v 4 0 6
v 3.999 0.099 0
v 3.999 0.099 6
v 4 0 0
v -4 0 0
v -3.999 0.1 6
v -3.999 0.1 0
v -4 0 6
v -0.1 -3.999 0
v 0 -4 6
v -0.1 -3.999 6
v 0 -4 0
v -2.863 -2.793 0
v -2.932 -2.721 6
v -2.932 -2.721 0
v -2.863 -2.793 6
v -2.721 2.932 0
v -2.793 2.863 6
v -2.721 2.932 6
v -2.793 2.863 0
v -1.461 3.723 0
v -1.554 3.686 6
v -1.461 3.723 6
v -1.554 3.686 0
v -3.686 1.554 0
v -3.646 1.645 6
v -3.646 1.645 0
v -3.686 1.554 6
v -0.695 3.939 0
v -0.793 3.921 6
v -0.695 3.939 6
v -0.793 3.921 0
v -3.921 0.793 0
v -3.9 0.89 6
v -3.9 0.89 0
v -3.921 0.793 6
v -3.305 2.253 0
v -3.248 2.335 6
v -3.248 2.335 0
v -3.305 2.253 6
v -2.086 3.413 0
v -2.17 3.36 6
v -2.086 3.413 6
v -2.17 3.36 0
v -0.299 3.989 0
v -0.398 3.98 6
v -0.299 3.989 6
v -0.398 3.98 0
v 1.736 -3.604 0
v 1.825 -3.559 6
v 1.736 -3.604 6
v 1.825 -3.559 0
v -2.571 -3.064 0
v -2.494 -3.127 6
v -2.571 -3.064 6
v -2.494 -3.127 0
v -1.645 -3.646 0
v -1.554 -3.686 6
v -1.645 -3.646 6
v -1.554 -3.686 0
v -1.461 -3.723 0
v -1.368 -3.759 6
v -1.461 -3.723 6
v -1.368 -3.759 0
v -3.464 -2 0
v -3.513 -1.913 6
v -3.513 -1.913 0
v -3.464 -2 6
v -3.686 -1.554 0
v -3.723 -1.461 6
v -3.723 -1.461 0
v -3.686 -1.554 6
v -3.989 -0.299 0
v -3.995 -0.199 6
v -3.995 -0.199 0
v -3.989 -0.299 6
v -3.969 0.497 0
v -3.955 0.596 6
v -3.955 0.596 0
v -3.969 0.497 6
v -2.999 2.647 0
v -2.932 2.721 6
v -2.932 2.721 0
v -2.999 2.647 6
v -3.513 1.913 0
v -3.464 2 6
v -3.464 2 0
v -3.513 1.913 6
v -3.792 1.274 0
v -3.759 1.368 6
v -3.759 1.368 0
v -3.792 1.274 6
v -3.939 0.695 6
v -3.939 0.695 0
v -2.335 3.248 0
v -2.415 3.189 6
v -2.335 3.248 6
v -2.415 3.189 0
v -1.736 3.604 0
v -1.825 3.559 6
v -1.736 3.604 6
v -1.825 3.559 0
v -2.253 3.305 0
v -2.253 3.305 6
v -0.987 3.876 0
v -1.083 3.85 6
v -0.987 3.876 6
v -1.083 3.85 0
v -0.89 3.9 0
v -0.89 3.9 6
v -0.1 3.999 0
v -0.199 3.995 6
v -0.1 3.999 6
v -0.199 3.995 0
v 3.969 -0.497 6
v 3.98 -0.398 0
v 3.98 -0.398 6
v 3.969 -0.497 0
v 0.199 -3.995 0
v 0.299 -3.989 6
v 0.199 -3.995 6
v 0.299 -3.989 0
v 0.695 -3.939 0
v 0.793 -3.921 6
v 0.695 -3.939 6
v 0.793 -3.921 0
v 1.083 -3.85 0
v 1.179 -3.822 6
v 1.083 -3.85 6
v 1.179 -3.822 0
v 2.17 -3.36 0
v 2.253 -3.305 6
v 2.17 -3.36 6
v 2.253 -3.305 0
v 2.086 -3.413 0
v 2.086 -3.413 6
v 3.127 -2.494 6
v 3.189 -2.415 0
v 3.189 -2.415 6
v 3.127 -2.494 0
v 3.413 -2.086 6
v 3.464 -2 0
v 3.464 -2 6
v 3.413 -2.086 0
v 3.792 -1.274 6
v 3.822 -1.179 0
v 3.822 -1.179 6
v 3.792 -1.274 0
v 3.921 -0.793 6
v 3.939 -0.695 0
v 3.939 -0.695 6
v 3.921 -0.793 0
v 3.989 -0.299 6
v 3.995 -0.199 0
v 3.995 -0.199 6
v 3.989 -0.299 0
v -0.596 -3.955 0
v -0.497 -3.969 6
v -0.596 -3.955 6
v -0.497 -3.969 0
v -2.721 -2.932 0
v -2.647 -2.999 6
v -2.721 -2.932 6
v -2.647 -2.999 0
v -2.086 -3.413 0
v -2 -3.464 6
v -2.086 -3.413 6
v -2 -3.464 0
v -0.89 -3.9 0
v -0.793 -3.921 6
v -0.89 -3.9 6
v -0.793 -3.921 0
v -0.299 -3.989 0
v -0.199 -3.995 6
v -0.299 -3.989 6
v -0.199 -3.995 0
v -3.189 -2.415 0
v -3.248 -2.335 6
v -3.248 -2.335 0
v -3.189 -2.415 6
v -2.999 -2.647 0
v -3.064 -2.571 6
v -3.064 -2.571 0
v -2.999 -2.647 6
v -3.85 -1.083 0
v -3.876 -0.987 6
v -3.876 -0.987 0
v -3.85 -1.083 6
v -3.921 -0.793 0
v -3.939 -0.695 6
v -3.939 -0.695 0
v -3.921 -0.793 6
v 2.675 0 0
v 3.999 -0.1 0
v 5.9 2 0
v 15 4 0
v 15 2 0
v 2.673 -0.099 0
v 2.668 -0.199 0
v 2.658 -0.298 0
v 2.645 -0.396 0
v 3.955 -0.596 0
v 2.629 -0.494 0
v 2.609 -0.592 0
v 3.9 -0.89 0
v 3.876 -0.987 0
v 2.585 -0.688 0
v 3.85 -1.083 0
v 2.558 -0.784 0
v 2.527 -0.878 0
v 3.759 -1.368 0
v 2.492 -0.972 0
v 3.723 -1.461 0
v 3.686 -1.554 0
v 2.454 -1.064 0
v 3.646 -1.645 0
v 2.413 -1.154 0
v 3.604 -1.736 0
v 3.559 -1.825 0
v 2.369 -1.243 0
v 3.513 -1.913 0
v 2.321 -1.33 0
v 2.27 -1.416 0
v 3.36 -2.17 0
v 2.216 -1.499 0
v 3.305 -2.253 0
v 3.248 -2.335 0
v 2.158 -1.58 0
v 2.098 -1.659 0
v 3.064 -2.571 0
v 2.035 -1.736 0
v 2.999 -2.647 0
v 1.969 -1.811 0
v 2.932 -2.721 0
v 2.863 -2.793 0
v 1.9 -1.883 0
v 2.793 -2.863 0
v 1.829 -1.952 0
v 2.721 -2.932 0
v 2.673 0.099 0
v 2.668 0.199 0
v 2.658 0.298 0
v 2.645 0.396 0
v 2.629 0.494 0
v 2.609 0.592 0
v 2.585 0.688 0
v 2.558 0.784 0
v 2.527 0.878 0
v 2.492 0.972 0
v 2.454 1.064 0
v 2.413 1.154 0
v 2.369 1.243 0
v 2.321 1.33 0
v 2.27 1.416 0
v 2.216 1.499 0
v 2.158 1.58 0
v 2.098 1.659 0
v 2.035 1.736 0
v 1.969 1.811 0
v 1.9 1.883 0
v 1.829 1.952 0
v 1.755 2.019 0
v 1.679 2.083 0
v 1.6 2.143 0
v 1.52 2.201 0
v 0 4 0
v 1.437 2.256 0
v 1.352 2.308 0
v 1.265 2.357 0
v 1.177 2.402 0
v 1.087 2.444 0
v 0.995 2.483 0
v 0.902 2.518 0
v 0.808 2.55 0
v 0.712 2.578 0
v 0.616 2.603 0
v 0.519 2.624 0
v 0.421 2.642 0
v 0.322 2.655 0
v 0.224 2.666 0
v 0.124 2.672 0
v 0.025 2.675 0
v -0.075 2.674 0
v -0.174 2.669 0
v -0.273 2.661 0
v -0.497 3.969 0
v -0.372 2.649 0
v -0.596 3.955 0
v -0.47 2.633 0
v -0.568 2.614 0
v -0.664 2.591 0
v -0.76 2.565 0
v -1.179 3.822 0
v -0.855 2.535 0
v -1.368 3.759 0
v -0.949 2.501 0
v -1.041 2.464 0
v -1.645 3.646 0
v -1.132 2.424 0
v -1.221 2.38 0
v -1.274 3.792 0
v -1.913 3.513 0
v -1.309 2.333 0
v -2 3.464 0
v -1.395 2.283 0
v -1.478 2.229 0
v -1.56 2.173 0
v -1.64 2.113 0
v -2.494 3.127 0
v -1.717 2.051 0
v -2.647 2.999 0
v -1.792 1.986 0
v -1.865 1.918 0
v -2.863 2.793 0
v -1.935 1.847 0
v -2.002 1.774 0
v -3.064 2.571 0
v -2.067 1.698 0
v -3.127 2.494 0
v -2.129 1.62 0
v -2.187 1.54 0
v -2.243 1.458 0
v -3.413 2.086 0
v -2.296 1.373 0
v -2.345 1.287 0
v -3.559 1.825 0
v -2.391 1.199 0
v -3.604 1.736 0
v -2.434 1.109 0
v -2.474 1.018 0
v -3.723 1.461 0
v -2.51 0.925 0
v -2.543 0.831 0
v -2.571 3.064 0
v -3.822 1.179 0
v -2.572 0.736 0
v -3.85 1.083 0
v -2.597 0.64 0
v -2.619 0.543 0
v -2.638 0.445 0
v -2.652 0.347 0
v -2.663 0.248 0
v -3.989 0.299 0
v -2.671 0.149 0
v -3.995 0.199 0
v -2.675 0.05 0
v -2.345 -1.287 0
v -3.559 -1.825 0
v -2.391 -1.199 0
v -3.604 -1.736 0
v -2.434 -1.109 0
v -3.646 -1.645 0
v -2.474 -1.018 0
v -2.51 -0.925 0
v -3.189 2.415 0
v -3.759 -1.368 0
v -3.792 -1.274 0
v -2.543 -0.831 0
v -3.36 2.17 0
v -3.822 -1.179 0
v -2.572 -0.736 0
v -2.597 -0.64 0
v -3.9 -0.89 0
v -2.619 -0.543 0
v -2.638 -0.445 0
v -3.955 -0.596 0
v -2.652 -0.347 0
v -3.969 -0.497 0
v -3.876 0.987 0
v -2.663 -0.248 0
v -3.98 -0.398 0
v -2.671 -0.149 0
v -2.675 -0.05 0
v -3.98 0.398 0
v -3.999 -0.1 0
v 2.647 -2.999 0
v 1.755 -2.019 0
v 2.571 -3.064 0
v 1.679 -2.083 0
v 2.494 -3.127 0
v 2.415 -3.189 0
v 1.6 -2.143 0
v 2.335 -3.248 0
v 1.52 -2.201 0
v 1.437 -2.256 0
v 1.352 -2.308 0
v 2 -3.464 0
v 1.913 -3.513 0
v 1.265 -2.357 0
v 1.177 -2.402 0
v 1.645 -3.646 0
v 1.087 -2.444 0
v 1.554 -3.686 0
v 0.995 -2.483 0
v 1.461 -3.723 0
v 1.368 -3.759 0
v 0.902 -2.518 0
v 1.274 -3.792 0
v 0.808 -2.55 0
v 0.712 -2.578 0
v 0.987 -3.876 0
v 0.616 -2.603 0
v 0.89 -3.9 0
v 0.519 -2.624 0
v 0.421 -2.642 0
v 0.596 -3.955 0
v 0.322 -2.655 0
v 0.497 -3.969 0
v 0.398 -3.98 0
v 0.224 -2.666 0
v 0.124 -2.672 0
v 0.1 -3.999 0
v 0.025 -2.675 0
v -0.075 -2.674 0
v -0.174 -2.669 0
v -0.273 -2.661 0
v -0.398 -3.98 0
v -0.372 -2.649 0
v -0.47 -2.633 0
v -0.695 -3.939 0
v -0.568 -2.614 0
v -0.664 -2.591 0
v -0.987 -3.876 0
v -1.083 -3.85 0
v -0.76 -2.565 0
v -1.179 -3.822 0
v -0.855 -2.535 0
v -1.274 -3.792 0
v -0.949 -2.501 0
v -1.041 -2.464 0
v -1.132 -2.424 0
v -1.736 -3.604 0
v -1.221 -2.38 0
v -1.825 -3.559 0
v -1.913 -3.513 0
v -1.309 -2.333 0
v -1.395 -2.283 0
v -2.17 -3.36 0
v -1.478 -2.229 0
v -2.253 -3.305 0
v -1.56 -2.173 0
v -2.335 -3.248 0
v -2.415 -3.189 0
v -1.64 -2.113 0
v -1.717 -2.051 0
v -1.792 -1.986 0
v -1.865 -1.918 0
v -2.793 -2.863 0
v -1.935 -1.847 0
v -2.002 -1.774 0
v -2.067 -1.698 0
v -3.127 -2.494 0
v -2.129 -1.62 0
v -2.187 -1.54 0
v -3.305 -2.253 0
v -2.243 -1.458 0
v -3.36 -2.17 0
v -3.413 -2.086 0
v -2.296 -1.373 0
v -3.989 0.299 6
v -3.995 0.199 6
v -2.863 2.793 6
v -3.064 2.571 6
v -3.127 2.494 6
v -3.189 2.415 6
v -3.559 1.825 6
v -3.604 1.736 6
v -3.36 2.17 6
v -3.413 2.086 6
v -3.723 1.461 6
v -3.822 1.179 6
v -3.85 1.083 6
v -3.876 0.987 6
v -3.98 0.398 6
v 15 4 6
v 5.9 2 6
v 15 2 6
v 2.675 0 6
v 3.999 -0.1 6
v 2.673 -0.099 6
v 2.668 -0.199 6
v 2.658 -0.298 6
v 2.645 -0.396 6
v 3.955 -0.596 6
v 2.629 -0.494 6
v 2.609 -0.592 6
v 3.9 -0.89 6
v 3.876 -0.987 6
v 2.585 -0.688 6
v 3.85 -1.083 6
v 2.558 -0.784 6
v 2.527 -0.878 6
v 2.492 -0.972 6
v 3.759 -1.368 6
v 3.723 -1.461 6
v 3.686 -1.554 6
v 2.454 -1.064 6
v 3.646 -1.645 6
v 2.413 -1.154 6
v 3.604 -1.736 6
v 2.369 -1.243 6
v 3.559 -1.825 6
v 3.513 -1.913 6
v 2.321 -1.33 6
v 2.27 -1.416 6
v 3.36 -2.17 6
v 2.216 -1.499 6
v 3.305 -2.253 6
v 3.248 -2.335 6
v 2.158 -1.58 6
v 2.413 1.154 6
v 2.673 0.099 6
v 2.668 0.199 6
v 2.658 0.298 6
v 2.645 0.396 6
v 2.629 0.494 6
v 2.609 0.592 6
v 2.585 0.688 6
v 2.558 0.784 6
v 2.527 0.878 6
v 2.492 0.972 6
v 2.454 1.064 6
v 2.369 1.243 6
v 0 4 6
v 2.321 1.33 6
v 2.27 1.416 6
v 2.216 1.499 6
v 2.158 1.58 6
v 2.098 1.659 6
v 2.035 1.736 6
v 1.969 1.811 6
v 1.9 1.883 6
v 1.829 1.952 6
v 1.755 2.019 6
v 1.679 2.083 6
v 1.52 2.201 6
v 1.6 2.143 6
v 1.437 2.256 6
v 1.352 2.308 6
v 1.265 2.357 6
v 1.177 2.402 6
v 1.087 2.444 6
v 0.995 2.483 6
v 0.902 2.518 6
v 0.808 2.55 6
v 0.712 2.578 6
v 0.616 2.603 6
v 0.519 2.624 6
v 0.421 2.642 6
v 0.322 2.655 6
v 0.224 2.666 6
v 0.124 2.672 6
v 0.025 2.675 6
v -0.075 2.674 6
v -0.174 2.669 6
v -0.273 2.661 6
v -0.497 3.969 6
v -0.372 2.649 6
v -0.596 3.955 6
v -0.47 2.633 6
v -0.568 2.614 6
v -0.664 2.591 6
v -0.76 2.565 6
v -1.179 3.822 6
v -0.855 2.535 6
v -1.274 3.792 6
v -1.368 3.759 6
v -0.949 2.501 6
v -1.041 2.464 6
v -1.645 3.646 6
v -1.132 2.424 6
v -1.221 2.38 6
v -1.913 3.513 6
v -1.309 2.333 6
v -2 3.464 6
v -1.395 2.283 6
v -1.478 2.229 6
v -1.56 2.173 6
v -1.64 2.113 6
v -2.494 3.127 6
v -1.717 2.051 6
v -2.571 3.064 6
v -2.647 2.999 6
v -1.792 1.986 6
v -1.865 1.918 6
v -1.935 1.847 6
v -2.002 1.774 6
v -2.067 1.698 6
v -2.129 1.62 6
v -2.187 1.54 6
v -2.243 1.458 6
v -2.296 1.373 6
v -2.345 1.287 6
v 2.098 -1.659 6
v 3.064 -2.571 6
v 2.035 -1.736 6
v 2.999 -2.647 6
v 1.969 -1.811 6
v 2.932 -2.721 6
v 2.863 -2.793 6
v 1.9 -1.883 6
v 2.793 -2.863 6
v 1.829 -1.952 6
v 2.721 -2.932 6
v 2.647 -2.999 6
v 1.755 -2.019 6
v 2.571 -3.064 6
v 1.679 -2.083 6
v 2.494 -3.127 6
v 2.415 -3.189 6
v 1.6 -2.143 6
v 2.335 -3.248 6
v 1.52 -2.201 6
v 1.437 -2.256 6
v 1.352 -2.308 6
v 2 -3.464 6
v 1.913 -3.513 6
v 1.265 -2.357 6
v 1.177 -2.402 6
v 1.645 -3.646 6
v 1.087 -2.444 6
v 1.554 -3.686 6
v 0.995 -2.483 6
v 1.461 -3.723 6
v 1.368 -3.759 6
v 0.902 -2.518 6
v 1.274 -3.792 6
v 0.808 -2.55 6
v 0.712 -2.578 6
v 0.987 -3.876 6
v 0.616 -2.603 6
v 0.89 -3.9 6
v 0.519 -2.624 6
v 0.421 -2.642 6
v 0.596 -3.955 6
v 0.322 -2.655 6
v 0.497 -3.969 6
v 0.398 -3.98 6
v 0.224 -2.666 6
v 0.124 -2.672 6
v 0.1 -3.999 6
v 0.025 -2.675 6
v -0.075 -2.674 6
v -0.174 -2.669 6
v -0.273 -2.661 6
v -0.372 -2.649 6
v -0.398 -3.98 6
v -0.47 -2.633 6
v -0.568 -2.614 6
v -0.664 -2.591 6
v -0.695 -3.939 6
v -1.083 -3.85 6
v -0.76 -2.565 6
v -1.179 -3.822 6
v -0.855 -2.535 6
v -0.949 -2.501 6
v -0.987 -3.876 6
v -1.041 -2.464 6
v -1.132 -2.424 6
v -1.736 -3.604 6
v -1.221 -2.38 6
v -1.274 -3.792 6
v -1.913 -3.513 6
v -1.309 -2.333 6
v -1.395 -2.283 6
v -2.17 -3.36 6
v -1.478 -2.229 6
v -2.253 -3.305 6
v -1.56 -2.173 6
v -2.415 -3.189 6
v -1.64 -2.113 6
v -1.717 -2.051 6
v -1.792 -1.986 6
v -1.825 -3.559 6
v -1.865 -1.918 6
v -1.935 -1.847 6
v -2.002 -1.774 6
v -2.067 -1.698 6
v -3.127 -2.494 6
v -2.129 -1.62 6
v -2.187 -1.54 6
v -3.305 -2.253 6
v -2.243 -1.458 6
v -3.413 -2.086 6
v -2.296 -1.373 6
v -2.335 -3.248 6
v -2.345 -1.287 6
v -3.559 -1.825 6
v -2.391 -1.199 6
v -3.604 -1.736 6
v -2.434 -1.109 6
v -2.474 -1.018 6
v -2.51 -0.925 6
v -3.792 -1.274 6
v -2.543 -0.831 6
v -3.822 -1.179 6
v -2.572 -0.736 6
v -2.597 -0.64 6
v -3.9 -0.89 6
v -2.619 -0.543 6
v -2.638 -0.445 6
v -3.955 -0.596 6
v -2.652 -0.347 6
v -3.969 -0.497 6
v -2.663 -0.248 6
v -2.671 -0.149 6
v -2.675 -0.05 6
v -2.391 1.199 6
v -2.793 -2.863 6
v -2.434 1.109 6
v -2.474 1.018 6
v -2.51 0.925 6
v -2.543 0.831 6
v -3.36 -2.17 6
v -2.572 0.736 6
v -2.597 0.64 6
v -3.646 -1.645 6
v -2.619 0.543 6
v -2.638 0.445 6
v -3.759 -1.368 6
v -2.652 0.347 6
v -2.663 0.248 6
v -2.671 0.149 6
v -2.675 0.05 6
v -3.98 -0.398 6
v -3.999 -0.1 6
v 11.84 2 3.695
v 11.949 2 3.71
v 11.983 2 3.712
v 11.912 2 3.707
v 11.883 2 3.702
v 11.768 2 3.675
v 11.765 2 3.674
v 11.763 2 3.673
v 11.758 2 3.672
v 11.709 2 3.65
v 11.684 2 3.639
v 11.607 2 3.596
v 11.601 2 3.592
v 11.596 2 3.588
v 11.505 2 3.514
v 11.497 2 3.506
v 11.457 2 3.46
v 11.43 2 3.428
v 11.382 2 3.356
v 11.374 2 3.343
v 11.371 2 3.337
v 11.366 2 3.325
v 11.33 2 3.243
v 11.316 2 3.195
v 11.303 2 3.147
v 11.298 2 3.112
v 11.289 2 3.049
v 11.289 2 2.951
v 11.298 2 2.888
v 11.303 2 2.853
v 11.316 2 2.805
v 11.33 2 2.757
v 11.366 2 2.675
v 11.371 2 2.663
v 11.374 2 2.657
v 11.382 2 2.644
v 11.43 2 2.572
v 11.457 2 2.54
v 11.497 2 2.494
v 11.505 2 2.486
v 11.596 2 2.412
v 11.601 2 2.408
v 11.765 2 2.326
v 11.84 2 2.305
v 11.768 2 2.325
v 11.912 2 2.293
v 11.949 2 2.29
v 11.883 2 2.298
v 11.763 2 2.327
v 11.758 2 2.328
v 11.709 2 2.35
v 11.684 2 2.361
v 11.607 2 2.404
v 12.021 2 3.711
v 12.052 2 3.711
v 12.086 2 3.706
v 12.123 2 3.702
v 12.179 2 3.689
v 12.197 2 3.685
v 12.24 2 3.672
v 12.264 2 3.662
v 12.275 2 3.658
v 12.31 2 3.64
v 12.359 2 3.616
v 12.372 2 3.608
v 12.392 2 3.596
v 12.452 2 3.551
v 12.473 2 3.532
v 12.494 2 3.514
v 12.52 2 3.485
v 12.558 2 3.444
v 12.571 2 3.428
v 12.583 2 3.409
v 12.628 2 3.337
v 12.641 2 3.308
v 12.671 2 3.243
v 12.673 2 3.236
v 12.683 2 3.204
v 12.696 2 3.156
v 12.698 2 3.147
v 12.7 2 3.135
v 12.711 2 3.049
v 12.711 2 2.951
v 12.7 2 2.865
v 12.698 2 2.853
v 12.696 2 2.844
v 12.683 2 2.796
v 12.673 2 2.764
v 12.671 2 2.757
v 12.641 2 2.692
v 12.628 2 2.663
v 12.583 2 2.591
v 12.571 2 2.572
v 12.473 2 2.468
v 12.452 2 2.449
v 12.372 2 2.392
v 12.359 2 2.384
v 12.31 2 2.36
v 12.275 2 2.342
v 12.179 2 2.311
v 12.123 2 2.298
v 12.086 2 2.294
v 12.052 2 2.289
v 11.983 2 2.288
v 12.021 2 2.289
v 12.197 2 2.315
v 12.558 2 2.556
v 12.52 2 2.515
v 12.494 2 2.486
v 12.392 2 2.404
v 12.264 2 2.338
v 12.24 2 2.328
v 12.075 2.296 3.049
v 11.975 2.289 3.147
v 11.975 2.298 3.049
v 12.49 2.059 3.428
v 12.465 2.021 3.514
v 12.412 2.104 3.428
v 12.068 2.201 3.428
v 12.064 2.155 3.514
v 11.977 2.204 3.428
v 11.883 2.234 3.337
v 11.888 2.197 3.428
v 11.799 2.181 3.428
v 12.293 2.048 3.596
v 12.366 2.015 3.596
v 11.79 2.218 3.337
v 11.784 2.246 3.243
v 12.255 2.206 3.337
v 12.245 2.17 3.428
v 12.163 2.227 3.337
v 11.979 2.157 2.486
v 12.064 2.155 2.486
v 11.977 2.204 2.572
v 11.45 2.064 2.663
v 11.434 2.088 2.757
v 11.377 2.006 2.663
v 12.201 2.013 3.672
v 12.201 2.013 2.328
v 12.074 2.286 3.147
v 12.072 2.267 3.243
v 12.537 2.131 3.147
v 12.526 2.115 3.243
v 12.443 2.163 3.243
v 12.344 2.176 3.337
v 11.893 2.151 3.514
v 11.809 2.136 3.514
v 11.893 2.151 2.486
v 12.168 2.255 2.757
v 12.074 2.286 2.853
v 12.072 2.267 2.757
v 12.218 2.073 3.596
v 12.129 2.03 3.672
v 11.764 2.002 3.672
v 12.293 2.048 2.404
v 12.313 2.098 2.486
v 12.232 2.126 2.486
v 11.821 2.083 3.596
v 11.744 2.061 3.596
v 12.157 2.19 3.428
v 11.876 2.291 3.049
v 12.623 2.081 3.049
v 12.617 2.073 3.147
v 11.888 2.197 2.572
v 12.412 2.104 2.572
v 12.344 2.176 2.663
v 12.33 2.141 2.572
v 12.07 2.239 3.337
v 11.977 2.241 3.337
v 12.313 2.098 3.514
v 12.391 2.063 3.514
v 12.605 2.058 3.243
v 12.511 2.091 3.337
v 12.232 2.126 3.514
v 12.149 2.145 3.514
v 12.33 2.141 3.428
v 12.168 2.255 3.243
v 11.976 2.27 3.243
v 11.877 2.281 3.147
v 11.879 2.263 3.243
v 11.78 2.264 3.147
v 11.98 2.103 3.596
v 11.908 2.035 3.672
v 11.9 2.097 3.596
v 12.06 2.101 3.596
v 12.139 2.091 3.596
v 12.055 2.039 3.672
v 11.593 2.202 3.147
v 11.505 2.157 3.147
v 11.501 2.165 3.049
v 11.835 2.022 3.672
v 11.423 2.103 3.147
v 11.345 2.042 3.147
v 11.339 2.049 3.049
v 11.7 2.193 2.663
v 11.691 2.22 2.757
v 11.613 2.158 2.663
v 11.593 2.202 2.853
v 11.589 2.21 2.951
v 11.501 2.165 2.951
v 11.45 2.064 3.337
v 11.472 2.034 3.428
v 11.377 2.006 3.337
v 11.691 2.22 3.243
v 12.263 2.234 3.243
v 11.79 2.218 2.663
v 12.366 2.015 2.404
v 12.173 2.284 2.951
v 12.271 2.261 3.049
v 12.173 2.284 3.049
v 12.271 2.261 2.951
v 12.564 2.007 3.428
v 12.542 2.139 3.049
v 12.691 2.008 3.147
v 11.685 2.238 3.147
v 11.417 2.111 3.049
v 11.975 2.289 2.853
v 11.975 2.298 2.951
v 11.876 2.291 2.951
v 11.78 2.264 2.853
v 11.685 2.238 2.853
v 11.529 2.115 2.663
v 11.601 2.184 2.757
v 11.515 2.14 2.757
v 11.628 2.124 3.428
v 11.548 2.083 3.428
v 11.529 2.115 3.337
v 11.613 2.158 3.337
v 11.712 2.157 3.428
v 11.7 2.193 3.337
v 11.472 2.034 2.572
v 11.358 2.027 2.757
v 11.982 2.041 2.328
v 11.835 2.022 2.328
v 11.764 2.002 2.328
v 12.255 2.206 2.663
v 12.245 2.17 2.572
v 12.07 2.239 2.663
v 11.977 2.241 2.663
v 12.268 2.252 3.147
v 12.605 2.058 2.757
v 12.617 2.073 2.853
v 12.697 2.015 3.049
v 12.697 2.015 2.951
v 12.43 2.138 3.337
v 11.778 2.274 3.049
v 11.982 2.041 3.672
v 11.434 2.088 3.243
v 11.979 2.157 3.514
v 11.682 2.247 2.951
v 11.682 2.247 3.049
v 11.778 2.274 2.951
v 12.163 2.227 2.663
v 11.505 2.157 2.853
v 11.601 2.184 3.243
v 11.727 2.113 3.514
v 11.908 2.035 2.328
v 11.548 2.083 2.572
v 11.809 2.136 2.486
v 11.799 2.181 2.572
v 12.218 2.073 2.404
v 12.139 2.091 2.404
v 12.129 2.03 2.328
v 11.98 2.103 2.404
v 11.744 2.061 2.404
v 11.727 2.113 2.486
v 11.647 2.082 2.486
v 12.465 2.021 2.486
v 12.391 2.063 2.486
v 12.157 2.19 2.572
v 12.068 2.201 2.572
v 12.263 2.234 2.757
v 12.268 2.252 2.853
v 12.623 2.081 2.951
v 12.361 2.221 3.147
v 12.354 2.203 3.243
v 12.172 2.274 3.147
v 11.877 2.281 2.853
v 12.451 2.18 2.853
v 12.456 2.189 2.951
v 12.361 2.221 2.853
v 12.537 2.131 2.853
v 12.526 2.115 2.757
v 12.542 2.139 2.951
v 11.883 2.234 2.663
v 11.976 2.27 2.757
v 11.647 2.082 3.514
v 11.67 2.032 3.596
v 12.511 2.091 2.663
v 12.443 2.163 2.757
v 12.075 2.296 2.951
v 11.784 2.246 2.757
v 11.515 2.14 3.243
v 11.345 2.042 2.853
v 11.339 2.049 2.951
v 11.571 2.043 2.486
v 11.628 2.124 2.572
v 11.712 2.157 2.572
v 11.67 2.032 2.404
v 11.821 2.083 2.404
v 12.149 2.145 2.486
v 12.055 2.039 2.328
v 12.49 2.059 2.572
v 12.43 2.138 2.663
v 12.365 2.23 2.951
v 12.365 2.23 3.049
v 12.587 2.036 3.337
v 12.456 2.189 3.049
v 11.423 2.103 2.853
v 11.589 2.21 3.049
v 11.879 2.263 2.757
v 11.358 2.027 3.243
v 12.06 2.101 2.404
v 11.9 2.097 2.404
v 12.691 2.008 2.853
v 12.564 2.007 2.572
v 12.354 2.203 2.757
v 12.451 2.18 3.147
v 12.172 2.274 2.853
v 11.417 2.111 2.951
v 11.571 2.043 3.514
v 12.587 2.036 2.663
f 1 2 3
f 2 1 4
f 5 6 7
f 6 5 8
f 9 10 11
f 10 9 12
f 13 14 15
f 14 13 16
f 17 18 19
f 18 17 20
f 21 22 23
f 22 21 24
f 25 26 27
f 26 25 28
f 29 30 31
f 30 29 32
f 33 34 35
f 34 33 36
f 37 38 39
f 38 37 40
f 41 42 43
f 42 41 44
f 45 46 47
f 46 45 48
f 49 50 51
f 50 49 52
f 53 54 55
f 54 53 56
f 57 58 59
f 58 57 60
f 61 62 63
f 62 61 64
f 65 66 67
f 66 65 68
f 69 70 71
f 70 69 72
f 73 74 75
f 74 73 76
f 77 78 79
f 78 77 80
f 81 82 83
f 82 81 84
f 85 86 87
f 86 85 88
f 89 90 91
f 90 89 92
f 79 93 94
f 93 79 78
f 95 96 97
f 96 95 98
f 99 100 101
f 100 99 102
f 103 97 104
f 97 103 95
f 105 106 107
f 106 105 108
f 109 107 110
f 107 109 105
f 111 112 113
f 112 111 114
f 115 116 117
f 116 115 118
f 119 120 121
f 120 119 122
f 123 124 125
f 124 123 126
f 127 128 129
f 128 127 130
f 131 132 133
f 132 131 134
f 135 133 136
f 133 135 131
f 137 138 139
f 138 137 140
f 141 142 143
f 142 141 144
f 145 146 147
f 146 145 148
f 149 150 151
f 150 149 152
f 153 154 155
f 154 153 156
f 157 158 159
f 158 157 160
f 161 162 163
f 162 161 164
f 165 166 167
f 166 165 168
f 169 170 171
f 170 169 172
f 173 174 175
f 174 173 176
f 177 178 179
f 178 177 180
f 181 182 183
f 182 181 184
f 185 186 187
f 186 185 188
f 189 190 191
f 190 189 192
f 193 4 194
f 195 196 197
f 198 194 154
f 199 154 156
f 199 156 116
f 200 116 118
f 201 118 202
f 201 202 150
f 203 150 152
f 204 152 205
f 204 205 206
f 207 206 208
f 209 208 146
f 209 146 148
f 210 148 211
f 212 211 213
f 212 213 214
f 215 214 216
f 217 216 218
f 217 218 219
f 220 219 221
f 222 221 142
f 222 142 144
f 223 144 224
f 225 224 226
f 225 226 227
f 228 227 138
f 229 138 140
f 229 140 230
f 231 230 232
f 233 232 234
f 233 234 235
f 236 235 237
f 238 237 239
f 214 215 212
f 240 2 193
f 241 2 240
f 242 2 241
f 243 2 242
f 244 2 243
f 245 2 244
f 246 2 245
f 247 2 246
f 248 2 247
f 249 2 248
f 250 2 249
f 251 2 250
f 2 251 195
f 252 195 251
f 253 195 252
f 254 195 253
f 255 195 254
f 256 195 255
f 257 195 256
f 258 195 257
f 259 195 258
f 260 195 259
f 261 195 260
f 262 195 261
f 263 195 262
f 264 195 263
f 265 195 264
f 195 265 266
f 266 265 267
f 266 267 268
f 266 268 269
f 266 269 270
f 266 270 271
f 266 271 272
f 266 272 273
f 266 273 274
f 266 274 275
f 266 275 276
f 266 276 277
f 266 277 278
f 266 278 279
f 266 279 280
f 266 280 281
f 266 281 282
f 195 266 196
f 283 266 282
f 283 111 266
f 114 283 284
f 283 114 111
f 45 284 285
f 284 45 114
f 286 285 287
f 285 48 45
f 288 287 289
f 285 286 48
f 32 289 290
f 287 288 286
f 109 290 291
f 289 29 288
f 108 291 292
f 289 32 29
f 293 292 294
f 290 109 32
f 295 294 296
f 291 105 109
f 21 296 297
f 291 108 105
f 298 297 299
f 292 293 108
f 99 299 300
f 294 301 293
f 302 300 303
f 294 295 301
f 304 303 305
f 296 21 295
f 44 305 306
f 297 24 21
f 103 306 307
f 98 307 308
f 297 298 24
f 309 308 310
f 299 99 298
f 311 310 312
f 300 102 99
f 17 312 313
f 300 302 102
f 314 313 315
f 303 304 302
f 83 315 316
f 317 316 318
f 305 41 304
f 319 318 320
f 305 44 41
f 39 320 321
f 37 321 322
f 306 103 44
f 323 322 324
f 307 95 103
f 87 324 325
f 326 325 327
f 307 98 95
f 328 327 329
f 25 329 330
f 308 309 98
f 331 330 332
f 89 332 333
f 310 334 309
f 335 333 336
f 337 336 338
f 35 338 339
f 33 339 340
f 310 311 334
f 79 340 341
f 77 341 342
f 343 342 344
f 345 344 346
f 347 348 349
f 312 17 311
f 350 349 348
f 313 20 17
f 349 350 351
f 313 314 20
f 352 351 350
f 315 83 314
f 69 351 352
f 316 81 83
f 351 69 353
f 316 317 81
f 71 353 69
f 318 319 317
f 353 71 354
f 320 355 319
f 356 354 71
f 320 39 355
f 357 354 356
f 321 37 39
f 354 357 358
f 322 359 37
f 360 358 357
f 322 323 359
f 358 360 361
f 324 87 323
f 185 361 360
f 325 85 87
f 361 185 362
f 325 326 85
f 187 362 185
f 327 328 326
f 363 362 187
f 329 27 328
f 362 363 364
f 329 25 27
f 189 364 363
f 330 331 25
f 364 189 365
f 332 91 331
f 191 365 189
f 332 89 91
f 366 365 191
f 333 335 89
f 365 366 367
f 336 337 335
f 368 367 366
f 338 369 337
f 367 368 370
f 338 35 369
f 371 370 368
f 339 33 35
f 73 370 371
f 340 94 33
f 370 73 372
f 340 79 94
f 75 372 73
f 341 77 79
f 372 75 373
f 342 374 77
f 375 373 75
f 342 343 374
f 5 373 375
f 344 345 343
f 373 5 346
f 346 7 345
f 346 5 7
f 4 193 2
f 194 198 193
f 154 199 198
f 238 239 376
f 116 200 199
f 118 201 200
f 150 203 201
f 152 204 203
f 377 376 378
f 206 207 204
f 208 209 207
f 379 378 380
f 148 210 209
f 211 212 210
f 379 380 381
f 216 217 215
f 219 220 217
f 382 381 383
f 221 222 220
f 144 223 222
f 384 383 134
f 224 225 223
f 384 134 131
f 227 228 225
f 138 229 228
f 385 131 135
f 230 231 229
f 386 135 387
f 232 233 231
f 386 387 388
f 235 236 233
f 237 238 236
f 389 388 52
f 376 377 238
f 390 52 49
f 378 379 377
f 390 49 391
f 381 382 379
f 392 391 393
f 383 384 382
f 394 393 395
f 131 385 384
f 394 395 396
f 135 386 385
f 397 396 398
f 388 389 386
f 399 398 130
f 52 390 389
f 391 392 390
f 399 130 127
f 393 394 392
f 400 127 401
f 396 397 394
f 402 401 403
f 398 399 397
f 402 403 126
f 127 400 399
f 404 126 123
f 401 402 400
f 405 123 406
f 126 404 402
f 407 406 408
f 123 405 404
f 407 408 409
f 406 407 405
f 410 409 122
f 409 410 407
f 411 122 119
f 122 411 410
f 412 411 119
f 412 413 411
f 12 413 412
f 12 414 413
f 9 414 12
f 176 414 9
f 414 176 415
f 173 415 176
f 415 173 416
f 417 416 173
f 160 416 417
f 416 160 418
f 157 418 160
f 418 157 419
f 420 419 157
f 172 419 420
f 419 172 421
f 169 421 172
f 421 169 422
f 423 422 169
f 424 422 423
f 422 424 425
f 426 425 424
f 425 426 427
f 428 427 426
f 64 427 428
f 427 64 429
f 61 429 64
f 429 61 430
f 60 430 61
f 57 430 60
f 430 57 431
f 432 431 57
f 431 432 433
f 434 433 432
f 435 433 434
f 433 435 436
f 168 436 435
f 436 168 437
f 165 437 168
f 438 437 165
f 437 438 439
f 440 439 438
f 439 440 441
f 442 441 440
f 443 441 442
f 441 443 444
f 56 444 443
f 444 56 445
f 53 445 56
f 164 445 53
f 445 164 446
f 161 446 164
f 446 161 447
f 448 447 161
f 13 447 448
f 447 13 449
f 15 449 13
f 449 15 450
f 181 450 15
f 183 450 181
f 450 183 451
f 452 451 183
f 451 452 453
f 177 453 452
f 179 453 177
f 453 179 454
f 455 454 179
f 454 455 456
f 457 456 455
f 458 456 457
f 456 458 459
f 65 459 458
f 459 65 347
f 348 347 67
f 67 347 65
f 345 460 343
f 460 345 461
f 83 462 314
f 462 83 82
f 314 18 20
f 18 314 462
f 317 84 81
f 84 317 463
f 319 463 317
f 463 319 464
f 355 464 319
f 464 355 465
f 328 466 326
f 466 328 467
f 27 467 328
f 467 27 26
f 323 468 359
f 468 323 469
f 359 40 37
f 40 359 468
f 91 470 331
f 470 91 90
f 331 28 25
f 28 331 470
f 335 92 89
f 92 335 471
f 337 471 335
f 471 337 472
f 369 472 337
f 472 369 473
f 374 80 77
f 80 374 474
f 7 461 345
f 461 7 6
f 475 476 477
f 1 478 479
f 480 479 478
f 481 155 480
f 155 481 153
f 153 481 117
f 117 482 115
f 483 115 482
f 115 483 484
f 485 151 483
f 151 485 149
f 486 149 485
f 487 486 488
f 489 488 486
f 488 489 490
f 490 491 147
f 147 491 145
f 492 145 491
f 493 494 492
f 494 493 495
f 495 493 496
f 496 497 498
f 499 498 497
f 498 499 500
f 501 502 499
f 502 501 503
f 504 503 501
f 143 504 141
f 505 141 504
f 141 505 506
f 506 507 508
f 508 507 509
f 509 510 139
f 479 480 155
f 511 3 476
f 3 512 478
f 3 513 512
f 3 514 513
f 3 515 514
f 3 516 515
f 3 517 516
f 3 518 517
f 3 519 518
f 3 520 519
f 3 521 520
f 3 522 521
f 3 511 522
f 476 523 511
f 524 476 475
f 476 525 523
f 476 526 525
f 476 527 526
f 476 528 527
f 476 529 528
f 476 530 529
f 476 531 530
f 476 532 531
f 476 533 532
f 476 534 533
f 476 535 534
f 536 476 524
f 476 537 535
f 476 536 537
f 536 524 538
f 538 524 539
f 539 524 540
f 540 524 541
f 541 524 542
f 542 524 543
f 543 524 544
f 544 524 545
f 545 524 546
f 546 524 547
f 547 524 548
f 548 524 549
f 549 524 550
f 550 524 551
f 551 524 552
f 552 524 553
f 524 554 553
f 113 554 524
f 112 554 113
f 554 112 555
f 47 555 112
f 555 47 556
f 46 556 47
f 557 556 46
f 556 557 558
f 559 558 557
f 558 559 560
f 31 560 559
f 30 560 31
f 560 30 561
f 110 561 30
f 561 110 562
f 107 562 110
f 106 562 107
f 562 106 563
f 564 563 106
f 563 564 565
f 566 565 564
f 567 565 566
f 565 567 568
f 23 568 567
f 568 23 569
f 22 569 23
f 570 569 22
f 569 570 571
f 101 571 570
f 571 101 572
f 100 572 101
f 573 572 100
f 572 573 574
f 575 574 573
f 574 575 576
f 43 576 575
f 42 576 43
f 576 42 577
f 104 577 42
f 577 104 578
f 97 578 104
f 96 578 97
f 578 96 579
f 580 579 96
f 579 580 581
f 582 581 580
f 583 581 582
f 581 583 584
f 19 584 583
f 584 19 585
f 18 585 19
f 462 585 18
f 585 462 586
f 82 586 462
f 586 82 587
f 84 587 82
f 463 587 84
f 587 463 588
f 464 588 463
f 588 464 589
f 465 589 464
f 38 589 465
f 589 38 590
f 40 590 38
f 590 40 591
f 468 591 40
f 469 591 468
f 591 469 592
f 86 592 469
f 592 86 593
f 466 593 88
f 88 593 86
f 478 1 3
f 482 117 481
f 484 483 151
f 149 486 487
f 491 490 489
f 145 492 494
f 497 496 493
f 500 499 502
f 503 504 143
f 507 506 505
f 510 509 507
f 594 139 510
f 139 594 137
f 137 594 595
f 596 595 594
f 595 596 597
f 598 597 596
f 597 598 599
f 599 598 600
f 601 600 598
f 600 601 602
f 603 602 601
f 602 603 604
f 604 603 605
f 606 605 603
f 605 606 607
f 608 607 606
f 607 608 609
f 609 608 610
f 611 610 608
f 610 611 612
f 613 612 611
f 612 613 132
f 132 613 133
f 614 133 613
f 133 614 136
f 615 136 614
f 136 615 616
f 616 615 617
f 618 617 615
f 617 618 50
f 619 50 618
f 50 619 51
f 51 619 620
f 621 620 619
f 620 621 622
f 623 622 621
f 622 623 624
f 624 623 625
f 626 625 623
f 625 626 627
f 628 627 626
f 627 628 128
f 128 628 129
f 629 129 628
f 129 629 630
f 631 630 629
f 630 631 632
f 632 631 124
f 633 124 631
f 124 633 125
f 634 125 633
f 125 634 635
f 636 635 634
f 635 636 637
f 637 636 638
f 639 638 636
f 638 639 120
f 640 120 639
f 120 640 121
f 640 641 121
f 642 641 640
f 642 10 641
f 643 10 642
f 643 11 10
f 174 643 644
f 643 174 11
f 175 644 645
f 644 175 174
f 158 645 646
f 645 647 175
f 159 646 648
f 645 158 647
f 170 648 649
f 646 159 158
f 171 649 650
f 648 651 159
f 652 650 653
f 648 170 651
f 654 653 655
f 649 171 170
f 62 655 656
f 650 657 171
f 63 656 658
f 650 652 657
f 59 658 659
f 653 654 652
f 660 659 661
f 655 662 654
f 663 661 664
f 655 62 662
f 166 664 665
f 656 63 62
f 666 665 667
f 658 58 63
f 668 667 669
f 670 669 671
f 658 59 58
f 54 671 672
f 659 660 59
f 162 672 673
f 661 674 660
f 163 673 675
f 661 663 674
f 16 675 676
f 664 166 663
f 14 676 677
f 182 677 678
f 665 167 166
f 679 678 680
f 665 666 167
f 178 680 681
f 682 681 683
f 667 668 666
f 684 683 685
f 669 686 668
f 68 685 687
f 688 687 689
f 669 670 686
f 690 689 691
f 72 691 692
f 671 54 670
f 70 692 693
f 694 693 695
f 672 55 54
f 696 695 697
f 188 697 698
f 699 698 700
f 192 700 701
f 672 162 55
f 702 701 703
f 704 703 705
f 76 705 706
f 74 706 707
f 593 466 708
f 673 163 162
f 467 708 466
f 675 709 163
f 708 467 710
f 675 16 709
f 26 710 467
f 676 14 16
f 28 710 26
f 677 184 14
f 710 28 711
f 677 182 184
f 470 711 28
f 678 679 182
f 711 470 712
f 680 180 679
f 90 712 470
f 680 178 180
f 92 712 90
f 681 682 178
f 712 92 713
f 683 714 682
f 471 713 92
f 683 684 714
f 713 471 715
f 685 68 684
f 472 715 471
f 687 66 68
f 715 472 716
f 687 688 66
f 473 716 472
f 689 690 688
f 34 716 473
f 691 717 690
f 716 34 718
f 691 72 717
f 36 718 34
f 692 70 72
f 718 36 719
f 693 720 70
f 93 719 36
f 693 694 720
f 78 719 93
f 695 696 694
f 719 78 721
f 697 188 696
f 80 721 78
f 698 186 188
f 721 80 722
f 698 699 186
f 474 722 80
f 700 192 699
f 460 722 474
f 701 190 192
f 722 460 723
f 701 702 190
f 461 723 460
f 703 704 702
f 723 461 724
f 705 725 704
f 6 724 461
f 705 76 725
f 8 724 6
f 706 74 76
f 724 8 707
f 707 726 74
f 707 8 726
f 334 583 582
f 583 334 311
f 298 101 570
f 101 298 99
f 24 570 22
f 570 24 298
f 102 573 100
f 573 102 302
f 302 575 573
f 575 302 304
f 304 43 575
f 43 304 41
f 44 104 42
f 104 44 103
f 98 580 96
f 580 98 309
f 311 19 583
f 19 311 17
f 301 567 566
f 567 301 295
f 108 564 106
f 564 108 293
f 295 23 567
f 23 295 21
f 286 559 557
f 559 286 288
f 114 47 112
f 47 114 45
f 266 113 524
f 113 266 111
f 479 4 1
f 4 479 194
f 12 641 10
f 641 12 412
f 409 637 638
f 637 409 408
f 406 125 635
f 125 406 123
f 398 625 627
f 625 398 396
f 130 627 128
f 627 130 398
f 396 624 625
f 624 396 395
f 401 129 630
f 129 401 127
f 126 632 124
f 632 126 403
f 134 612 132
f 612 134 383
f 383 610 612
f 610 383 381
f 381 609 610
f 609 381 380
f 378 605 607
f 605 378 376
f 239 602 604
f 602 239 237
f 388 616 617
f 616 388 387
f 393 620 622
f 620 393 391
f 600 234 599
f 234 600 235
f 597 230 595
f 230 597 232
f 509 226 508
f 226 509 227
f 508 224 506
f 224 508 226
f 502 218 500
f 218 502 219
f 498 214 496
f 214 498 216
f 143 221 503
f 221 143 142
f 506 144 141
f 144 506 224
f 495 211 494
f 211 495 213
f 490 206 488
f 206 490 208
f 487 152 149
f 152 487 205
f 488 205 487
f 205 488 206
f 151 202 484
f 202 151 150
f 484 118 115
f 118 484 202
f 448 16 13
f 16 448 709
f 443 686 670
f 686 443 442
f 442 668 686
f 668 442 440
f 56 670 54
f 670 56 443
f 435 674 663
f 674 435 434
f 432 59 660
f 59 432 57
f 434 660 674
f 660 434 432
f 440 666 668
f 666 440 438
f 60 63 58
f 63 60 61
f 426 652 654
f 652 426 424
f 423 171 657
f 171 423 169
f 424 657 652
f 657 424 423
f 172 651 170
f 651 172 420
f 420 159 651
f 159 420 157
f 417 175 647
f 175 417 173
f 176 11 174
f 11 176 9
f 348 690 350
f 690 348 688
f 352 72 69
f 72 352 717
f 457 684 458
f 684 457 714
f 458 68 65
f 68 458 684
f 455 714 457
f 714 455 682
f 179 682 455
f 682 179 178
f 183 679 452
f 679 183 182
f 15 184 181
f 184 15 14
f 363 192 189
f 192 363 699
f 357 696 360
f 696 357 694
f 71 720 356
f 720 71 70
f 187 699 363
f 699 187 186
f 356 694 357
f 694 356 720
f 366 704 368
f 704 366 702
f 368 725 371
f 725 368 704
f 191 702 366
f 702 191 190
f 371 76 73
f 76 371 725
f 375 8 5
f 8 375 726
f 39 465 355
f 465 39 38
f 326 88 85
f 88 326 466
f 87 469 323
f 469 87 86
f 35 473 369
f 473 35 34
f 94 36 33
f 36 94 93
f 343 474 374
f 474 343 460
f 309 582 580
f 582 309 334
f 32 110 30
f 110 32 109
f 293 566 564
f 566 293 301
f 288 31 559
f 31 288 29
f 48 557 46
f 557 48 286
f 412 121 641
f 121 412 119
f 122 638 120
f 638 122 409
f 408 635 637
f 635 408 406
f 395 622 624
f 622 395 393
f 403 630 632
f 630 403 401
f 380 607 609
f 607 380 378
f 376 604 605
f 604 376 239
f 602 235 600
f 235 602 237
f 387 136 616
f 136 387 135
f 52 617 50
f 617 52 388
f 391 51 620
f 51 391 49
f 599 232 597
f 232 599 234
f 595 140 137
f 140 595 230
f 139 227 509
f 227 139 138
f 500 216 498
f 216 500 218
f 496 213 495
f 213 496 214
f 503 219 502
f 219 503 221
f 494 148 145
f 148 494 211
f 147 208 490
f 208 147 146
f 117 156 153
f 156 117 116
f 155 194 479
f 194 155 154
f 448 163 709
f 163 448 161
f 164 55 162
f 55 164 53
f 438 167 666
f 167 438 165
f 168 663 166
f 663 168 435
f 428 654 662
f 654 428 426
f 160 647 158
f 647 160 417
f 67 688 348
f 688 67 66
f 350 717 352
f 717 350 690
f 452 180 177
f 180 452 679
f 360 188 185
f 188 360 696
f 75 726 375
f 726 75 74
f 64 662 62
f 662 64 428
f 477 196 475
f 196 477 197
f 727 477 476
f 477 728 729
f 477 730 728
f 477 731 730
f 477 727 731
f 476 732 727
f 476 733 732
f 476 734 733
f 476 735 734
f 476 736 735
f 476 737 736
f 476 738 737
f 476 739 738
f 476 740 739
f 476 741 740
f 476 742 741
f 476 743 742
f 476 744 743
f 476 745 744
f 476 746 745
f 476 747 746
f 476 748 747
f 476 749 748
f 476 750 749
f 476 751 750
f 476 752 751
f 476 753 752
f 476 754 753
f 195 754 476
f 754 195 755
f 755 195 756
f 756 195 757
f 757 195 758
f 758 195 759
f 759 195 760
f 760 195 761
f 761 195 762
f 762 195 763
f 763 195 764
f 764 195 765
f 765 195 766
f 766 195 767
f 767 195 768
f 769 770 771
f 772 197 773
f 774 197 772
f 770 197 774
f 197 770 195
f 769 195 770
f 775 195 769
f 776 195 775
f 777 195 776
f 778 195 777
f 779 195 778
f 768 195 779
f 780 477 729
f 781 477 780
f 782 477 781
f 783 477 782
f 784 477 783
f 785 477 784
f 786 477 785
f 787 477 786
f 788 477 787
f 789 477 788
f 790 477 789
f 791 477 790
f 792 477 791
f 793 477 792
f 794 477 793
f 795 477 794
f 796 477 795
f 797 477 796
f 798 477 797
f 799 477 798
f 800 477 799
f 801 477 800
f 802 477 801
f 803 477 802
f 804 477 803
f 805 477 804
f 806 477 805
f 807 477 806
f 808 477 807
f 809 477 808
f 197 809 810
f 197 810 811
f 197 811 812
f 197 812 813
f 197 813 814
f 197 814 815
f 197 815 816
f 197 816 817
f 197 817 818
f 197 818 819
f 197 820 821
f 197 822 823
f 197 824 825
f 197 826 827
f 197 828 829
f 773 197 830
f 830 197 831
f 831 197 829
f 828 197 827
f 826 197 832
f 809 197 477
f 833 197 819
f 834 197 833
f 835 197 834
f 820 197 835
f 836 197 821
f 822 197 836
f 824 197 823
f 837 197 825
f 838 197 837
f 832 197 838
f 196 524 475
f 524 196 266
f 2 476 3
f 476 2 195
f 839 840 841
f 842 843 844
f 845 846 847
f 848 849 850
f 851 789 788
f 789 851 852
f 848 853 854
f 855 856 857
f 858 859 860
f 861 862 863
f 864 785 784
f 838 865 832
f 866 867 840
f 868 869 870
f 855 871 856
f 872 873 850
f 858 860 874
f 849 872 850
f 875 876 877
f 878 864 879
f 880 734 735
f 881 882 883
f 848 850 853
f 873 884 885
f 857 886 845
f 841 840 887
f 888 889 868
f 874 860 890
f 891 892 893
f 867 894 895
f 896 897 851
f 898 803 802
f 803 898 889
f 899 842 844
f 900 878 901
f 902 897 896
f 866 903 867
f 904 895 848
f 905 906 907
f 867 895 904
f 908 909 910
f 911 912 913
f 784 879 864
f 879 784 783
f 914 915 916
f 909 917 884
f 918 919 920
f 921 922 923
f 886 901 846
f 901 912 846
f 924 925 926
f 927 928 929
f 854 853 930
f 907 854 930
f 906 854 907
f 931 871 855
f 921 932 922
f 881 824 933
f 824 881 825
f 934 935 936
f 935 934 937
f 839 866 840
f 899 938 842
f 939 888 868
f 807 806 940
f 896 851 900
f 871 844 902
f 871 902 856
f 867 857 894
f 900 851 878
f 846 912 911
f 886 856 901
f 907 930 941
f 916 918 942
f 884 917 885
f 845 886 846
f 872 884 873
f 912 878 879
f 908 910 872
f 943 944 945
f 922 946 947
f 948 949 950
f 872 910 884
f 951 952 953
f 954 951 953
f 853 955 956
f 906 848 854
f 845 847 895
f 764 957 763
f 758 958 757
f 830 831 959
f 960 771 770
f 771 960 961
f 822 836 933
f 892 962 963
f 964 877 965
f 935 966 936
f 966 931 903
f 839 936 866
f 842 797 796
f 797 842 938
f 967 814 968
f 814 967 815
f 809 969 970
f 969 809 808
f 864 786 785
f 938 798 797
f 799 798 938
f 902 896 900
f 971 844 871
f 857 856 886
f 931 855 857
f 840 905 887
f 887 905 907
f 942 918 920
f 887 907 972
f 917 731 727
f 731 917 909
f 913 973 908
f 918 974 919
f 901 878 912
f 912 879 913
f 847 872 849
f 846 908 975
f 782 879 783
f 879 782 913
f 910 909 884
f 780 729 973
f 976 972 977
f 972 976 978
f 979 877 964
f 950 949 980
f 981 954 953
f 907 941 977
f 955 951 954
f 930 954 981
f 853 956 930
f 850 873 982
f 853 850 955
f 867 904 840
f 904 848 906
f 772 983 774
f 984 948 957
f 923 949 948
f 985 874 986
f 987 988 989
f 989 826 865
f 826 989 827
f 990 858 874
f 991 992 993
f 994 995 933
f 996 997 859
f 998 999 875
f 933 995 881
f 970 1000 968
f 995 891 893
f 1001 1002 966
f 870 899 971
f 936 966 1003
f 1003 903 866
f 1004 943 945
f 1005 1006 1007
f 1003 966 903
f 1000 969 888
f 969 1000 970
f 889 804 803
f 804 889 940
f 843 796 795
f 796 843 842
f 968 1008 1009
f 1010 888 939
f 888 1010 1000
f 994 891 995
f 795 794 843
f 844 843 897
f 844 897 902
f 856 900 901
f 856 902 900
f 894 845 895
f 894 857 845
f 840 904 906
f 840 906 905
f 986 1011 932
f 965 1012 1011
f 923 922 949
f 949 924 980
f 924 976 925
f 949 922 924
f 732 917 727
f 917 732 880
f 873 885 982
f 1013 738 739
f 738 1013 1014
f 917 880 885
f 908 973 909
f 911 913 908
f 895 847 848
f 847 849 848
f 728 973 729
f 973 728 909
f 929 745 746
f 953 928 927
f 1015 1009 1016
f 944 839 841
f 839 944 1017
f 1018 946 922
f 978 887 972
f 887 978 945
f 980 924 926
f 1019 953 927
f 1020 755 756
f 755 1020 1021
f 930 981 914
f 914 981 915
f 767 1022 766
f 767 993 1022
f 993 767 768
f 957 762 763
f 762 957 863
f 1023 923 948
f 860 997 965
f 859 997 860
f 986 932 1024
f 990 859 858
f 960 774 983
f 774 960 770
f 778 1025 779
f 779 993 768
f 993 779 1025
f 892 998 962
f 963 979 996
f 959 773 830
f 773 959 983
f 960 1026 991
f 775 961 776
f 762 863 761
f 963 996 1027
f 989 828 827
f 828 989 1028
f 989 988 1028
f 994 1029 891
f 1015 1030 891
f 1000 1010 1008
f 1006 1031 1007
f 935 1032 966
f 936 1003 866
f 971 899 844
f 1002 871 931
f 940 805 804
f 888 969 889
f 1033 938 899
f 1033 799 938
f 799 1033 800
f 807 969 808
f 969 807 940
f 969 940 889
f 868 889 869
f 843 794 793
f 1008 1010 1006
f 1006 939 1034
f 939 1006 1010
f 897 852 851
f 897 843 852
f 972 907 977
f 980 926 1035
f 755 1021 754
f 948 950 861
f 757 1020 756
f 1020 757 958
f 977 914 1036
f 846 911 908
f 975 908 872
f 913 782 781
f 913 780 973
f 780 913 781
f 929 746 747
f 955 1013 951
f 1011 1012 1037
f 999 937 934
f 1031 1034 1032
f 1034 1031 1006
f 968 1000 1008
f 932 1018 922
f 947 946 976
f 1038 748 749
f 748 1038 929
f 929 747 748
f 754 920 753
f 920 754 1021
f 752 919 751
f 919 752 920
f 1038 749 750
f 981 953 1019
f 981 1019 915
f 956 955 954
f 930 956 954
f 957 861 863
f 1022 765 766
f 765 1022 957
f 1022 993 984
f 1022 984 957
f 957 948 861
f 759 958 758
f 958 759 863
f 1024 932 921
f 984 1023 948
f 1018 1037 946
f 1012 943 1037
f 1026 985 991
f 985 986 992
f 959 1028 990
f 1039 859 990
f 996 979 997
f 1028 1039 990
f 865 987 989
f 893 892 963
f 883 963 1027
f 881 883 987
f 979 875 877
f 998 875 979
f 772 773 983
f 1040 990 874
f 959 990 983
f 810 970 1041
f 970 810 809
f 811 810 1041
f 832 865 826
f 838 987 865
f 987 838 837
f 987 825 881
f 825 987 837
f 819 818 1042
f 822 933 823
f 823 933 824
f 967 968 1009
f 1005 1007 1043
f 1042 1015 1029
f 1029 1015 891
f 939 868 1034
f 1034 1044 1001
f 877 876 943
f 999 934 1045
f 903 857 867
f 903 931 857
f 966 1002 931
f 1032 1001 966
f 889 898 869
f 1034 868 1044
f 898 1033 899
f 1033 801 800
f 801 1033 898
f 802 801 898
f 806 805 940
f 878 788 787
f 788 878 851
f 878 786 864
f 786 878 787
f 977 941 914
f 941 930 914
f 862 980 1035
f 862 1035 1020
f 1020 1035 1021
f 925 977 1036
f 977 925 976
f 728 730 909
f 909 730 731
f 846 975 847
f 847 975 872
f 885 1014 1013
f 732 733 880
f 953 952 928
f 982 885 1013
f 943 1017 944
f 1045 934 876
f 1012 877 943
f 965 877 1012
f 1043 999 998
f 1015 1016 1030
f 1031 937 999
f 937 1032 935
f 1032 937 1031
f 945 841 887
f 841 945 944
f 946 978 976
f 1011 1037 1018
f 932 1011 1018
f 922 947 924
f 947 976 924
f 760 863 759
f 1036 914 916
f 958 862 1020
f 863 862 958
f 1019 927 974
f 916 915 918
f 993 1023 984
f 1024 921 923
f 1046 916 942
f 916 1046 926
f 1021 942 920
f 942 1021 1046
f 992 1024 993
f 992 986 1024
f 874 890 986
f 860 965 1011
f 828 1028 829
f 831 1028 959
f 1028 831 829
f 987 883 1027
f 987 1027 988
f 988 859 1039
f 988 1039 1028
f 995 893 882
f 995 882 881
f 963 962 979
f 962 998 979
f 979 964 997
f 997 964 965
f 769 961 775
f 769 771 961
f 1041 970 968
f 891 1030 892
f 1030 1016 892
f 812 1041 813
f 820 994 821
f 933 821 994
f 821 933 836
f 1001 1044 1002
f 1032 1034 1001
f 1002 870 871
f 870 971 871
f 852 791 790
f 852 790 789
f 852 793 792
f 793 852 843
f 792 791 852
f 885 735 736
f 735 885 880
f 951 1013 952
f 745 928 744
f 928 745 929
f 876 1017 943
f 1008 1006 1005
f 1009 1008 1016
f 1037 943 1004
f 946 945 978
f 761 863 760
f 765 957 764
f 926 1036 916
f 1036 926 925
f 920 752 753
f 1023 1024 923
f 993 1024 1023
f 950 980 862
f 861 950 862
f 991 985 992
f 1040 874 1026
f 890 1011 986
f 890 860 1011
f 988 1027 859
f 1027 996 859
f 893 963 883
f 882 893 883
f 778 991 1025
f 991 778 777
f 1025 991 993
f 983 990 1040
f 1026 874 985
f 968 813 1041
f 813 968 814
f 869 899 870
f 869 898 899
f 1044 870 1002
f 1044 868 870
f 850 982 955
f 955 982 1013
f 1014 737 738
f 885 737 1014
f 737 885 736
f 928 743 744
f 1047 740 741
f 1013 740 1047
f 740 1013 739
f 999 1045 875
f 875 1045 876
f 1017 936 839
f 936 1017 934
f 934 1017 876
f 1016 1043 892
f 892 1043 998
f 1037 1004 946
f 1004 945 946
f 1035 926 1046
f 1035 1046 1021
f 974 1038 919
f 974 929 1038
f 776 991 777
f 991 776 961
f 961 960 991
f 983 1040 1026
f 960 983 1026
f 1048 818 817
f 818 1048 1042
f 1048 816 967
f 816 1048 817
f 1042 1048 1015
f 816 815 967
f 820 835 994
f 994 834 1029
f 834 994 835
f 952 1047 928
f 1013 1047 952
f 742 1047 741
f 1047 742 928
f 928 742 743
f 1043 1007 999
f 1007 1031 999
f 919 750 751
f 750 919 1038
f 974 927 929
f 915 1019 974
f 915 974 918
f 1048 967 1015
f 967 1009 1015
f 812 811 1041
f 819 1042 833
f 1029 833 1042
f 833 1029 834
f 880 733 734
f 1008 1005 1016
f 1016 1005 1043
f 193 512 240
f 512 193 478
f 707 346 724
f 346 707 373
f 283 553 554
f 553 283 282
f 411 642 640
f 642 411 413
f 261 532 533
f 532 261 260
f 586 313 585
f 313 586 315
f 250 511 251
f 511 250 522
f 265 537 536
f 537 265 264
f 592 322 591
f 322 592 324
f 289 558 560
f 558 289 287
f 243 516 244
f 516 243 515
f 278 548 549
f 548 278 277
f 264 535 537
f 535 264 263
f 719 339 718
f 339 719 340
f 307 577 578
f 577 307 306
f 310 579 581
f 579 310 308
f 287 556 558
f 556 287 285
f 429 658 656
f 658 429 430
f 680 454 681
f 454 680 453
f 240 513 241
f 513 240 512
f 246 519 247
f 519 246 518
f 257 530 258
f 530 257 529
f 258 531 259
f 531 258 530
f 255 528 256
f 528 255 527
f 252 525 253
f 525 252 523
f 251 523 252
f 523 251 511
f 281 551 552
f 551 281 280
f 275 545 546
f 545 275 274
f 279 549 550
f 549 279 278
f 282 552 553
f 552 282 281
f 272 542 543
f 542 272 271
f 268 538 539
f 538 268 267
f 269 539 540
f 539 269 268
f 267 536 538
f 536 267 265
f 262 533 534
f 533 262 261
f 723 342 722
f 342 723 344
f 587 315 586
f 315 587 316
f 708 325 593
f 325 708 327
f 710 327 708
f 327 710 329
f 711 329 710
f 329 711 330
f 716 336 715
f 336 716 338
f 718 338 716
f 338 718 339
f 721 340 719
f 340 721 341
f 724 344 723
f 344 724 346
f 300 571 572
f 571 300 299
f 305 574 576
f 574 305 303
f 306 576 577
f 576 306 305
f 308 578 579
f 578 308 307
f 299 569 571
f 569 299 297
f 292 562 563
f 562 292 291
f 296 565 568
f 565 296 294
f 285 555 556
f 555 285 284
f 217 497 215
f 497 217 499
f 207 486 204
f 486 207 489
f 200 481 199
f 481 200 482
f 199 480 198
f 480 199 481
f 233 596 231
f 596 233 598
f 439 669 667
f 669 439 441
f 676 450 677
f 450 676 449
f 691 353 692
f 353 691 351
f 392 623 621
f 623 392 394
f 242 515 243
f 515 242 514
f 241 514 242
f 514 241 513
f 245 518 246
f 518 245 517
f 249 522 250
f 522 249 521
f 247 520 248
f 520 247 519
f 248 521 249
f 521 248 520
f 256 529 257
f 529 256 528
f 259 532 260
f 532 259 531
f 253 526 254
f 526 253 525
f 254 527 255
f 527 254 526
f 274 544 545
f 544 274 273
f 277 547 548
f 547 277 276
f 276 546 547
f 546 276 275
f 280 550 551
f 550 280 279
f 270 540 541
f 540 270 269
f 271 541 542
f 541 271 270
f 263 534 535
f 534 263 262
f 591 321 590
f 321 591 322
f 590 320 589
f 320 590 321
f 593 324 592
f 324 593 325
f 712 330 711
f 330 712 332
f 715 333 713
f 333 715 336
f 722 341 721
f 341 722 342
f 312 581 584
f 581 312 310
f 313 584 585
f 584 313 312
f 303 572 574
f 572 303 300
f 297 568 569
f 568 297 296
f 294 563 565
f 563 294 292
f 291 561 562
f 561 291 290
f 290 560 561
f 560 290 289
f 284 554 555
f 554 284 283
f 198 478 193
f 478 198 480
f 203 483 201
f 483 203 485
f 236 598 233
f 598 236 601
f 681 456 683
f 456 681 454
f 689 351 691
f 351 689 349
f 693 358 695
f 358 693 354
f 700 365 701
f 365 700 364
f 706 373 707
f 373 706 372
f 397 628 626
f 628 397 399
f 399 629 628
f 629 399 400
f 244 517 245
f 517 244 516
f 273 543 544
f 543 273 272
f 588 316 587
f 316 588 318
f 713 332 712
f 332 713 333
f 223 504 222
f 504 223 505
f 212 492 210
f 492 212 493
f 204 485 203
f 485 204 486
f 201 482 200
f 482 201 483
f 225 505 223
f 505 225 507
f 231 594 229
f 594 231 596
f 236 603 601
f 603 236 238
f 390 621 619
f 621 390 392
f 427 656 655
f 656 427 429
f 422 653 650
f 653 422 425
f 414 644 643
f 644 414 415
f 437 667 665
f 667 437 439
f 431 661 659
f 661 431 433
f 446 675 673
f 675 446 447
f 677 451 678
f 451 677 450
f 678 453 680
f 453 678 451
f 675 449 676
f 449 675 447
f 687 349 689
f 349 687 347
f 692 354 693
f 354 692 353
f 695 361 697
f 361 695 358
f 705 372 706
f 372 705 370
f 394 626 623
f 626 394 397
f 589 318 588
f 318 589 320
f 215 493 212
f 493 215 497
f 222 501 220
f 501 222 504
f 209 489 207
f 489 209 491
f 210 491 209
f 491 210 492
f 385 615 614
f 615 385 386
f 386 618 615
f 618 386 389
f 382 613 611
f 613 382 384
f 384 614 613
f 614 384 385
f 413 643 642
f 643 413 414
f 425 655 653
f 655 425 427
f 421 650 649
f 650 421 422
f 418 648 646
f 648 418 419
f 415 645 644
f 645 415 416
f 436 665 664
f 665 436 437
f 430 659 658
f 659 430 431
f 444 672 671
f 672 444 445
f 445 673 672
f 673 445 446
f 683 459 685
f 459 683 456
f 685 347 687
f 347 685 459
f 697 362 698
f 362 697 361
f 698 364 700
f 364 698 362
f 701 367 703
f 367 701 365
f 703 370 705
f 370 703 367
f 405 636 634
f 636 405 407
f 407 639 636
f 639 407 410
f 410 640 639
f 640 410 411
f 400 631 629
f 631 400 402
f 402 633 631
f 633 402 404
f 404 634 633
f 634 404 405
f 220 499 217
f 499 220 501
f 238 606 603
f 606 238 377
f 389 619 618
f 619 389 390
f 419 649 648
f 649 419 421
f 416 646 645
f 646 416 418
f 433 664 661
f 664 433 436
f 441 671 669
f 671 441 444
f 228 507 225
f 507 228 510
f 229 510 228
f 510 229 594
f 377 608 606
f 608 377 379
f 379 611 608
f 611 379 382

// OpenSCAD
$fa = 1;
$fs = 0.1;

height = 6;
length = 12;
hole_diameter = 5;

// Adjust for printing inaccuracies
hole_diameter_offset = 0.35;

difference() {  

    difference() {
        
        union() {
            // Outer cylinder
            cylinder(h=height, d=8);
        
            // Arm to hold camera
            translate([0, 2, 0]) cube([length + 3, 2, height]);
        
            // Arm brace
            translate([3.9, 0, 0]) rotate([0, 0, 45]) cube([3, 2, height]);
        }
        
        
        // Dimple for guide drilling screw hole
        translate([length, 1.3, height / 2]) sphere(d=2);
    }

    
    // Hole for frame standoff
    translate([0, 0, -1]) cylinder(h=height + 2, d=hole_diameter + hole_diameter_offset);
}
